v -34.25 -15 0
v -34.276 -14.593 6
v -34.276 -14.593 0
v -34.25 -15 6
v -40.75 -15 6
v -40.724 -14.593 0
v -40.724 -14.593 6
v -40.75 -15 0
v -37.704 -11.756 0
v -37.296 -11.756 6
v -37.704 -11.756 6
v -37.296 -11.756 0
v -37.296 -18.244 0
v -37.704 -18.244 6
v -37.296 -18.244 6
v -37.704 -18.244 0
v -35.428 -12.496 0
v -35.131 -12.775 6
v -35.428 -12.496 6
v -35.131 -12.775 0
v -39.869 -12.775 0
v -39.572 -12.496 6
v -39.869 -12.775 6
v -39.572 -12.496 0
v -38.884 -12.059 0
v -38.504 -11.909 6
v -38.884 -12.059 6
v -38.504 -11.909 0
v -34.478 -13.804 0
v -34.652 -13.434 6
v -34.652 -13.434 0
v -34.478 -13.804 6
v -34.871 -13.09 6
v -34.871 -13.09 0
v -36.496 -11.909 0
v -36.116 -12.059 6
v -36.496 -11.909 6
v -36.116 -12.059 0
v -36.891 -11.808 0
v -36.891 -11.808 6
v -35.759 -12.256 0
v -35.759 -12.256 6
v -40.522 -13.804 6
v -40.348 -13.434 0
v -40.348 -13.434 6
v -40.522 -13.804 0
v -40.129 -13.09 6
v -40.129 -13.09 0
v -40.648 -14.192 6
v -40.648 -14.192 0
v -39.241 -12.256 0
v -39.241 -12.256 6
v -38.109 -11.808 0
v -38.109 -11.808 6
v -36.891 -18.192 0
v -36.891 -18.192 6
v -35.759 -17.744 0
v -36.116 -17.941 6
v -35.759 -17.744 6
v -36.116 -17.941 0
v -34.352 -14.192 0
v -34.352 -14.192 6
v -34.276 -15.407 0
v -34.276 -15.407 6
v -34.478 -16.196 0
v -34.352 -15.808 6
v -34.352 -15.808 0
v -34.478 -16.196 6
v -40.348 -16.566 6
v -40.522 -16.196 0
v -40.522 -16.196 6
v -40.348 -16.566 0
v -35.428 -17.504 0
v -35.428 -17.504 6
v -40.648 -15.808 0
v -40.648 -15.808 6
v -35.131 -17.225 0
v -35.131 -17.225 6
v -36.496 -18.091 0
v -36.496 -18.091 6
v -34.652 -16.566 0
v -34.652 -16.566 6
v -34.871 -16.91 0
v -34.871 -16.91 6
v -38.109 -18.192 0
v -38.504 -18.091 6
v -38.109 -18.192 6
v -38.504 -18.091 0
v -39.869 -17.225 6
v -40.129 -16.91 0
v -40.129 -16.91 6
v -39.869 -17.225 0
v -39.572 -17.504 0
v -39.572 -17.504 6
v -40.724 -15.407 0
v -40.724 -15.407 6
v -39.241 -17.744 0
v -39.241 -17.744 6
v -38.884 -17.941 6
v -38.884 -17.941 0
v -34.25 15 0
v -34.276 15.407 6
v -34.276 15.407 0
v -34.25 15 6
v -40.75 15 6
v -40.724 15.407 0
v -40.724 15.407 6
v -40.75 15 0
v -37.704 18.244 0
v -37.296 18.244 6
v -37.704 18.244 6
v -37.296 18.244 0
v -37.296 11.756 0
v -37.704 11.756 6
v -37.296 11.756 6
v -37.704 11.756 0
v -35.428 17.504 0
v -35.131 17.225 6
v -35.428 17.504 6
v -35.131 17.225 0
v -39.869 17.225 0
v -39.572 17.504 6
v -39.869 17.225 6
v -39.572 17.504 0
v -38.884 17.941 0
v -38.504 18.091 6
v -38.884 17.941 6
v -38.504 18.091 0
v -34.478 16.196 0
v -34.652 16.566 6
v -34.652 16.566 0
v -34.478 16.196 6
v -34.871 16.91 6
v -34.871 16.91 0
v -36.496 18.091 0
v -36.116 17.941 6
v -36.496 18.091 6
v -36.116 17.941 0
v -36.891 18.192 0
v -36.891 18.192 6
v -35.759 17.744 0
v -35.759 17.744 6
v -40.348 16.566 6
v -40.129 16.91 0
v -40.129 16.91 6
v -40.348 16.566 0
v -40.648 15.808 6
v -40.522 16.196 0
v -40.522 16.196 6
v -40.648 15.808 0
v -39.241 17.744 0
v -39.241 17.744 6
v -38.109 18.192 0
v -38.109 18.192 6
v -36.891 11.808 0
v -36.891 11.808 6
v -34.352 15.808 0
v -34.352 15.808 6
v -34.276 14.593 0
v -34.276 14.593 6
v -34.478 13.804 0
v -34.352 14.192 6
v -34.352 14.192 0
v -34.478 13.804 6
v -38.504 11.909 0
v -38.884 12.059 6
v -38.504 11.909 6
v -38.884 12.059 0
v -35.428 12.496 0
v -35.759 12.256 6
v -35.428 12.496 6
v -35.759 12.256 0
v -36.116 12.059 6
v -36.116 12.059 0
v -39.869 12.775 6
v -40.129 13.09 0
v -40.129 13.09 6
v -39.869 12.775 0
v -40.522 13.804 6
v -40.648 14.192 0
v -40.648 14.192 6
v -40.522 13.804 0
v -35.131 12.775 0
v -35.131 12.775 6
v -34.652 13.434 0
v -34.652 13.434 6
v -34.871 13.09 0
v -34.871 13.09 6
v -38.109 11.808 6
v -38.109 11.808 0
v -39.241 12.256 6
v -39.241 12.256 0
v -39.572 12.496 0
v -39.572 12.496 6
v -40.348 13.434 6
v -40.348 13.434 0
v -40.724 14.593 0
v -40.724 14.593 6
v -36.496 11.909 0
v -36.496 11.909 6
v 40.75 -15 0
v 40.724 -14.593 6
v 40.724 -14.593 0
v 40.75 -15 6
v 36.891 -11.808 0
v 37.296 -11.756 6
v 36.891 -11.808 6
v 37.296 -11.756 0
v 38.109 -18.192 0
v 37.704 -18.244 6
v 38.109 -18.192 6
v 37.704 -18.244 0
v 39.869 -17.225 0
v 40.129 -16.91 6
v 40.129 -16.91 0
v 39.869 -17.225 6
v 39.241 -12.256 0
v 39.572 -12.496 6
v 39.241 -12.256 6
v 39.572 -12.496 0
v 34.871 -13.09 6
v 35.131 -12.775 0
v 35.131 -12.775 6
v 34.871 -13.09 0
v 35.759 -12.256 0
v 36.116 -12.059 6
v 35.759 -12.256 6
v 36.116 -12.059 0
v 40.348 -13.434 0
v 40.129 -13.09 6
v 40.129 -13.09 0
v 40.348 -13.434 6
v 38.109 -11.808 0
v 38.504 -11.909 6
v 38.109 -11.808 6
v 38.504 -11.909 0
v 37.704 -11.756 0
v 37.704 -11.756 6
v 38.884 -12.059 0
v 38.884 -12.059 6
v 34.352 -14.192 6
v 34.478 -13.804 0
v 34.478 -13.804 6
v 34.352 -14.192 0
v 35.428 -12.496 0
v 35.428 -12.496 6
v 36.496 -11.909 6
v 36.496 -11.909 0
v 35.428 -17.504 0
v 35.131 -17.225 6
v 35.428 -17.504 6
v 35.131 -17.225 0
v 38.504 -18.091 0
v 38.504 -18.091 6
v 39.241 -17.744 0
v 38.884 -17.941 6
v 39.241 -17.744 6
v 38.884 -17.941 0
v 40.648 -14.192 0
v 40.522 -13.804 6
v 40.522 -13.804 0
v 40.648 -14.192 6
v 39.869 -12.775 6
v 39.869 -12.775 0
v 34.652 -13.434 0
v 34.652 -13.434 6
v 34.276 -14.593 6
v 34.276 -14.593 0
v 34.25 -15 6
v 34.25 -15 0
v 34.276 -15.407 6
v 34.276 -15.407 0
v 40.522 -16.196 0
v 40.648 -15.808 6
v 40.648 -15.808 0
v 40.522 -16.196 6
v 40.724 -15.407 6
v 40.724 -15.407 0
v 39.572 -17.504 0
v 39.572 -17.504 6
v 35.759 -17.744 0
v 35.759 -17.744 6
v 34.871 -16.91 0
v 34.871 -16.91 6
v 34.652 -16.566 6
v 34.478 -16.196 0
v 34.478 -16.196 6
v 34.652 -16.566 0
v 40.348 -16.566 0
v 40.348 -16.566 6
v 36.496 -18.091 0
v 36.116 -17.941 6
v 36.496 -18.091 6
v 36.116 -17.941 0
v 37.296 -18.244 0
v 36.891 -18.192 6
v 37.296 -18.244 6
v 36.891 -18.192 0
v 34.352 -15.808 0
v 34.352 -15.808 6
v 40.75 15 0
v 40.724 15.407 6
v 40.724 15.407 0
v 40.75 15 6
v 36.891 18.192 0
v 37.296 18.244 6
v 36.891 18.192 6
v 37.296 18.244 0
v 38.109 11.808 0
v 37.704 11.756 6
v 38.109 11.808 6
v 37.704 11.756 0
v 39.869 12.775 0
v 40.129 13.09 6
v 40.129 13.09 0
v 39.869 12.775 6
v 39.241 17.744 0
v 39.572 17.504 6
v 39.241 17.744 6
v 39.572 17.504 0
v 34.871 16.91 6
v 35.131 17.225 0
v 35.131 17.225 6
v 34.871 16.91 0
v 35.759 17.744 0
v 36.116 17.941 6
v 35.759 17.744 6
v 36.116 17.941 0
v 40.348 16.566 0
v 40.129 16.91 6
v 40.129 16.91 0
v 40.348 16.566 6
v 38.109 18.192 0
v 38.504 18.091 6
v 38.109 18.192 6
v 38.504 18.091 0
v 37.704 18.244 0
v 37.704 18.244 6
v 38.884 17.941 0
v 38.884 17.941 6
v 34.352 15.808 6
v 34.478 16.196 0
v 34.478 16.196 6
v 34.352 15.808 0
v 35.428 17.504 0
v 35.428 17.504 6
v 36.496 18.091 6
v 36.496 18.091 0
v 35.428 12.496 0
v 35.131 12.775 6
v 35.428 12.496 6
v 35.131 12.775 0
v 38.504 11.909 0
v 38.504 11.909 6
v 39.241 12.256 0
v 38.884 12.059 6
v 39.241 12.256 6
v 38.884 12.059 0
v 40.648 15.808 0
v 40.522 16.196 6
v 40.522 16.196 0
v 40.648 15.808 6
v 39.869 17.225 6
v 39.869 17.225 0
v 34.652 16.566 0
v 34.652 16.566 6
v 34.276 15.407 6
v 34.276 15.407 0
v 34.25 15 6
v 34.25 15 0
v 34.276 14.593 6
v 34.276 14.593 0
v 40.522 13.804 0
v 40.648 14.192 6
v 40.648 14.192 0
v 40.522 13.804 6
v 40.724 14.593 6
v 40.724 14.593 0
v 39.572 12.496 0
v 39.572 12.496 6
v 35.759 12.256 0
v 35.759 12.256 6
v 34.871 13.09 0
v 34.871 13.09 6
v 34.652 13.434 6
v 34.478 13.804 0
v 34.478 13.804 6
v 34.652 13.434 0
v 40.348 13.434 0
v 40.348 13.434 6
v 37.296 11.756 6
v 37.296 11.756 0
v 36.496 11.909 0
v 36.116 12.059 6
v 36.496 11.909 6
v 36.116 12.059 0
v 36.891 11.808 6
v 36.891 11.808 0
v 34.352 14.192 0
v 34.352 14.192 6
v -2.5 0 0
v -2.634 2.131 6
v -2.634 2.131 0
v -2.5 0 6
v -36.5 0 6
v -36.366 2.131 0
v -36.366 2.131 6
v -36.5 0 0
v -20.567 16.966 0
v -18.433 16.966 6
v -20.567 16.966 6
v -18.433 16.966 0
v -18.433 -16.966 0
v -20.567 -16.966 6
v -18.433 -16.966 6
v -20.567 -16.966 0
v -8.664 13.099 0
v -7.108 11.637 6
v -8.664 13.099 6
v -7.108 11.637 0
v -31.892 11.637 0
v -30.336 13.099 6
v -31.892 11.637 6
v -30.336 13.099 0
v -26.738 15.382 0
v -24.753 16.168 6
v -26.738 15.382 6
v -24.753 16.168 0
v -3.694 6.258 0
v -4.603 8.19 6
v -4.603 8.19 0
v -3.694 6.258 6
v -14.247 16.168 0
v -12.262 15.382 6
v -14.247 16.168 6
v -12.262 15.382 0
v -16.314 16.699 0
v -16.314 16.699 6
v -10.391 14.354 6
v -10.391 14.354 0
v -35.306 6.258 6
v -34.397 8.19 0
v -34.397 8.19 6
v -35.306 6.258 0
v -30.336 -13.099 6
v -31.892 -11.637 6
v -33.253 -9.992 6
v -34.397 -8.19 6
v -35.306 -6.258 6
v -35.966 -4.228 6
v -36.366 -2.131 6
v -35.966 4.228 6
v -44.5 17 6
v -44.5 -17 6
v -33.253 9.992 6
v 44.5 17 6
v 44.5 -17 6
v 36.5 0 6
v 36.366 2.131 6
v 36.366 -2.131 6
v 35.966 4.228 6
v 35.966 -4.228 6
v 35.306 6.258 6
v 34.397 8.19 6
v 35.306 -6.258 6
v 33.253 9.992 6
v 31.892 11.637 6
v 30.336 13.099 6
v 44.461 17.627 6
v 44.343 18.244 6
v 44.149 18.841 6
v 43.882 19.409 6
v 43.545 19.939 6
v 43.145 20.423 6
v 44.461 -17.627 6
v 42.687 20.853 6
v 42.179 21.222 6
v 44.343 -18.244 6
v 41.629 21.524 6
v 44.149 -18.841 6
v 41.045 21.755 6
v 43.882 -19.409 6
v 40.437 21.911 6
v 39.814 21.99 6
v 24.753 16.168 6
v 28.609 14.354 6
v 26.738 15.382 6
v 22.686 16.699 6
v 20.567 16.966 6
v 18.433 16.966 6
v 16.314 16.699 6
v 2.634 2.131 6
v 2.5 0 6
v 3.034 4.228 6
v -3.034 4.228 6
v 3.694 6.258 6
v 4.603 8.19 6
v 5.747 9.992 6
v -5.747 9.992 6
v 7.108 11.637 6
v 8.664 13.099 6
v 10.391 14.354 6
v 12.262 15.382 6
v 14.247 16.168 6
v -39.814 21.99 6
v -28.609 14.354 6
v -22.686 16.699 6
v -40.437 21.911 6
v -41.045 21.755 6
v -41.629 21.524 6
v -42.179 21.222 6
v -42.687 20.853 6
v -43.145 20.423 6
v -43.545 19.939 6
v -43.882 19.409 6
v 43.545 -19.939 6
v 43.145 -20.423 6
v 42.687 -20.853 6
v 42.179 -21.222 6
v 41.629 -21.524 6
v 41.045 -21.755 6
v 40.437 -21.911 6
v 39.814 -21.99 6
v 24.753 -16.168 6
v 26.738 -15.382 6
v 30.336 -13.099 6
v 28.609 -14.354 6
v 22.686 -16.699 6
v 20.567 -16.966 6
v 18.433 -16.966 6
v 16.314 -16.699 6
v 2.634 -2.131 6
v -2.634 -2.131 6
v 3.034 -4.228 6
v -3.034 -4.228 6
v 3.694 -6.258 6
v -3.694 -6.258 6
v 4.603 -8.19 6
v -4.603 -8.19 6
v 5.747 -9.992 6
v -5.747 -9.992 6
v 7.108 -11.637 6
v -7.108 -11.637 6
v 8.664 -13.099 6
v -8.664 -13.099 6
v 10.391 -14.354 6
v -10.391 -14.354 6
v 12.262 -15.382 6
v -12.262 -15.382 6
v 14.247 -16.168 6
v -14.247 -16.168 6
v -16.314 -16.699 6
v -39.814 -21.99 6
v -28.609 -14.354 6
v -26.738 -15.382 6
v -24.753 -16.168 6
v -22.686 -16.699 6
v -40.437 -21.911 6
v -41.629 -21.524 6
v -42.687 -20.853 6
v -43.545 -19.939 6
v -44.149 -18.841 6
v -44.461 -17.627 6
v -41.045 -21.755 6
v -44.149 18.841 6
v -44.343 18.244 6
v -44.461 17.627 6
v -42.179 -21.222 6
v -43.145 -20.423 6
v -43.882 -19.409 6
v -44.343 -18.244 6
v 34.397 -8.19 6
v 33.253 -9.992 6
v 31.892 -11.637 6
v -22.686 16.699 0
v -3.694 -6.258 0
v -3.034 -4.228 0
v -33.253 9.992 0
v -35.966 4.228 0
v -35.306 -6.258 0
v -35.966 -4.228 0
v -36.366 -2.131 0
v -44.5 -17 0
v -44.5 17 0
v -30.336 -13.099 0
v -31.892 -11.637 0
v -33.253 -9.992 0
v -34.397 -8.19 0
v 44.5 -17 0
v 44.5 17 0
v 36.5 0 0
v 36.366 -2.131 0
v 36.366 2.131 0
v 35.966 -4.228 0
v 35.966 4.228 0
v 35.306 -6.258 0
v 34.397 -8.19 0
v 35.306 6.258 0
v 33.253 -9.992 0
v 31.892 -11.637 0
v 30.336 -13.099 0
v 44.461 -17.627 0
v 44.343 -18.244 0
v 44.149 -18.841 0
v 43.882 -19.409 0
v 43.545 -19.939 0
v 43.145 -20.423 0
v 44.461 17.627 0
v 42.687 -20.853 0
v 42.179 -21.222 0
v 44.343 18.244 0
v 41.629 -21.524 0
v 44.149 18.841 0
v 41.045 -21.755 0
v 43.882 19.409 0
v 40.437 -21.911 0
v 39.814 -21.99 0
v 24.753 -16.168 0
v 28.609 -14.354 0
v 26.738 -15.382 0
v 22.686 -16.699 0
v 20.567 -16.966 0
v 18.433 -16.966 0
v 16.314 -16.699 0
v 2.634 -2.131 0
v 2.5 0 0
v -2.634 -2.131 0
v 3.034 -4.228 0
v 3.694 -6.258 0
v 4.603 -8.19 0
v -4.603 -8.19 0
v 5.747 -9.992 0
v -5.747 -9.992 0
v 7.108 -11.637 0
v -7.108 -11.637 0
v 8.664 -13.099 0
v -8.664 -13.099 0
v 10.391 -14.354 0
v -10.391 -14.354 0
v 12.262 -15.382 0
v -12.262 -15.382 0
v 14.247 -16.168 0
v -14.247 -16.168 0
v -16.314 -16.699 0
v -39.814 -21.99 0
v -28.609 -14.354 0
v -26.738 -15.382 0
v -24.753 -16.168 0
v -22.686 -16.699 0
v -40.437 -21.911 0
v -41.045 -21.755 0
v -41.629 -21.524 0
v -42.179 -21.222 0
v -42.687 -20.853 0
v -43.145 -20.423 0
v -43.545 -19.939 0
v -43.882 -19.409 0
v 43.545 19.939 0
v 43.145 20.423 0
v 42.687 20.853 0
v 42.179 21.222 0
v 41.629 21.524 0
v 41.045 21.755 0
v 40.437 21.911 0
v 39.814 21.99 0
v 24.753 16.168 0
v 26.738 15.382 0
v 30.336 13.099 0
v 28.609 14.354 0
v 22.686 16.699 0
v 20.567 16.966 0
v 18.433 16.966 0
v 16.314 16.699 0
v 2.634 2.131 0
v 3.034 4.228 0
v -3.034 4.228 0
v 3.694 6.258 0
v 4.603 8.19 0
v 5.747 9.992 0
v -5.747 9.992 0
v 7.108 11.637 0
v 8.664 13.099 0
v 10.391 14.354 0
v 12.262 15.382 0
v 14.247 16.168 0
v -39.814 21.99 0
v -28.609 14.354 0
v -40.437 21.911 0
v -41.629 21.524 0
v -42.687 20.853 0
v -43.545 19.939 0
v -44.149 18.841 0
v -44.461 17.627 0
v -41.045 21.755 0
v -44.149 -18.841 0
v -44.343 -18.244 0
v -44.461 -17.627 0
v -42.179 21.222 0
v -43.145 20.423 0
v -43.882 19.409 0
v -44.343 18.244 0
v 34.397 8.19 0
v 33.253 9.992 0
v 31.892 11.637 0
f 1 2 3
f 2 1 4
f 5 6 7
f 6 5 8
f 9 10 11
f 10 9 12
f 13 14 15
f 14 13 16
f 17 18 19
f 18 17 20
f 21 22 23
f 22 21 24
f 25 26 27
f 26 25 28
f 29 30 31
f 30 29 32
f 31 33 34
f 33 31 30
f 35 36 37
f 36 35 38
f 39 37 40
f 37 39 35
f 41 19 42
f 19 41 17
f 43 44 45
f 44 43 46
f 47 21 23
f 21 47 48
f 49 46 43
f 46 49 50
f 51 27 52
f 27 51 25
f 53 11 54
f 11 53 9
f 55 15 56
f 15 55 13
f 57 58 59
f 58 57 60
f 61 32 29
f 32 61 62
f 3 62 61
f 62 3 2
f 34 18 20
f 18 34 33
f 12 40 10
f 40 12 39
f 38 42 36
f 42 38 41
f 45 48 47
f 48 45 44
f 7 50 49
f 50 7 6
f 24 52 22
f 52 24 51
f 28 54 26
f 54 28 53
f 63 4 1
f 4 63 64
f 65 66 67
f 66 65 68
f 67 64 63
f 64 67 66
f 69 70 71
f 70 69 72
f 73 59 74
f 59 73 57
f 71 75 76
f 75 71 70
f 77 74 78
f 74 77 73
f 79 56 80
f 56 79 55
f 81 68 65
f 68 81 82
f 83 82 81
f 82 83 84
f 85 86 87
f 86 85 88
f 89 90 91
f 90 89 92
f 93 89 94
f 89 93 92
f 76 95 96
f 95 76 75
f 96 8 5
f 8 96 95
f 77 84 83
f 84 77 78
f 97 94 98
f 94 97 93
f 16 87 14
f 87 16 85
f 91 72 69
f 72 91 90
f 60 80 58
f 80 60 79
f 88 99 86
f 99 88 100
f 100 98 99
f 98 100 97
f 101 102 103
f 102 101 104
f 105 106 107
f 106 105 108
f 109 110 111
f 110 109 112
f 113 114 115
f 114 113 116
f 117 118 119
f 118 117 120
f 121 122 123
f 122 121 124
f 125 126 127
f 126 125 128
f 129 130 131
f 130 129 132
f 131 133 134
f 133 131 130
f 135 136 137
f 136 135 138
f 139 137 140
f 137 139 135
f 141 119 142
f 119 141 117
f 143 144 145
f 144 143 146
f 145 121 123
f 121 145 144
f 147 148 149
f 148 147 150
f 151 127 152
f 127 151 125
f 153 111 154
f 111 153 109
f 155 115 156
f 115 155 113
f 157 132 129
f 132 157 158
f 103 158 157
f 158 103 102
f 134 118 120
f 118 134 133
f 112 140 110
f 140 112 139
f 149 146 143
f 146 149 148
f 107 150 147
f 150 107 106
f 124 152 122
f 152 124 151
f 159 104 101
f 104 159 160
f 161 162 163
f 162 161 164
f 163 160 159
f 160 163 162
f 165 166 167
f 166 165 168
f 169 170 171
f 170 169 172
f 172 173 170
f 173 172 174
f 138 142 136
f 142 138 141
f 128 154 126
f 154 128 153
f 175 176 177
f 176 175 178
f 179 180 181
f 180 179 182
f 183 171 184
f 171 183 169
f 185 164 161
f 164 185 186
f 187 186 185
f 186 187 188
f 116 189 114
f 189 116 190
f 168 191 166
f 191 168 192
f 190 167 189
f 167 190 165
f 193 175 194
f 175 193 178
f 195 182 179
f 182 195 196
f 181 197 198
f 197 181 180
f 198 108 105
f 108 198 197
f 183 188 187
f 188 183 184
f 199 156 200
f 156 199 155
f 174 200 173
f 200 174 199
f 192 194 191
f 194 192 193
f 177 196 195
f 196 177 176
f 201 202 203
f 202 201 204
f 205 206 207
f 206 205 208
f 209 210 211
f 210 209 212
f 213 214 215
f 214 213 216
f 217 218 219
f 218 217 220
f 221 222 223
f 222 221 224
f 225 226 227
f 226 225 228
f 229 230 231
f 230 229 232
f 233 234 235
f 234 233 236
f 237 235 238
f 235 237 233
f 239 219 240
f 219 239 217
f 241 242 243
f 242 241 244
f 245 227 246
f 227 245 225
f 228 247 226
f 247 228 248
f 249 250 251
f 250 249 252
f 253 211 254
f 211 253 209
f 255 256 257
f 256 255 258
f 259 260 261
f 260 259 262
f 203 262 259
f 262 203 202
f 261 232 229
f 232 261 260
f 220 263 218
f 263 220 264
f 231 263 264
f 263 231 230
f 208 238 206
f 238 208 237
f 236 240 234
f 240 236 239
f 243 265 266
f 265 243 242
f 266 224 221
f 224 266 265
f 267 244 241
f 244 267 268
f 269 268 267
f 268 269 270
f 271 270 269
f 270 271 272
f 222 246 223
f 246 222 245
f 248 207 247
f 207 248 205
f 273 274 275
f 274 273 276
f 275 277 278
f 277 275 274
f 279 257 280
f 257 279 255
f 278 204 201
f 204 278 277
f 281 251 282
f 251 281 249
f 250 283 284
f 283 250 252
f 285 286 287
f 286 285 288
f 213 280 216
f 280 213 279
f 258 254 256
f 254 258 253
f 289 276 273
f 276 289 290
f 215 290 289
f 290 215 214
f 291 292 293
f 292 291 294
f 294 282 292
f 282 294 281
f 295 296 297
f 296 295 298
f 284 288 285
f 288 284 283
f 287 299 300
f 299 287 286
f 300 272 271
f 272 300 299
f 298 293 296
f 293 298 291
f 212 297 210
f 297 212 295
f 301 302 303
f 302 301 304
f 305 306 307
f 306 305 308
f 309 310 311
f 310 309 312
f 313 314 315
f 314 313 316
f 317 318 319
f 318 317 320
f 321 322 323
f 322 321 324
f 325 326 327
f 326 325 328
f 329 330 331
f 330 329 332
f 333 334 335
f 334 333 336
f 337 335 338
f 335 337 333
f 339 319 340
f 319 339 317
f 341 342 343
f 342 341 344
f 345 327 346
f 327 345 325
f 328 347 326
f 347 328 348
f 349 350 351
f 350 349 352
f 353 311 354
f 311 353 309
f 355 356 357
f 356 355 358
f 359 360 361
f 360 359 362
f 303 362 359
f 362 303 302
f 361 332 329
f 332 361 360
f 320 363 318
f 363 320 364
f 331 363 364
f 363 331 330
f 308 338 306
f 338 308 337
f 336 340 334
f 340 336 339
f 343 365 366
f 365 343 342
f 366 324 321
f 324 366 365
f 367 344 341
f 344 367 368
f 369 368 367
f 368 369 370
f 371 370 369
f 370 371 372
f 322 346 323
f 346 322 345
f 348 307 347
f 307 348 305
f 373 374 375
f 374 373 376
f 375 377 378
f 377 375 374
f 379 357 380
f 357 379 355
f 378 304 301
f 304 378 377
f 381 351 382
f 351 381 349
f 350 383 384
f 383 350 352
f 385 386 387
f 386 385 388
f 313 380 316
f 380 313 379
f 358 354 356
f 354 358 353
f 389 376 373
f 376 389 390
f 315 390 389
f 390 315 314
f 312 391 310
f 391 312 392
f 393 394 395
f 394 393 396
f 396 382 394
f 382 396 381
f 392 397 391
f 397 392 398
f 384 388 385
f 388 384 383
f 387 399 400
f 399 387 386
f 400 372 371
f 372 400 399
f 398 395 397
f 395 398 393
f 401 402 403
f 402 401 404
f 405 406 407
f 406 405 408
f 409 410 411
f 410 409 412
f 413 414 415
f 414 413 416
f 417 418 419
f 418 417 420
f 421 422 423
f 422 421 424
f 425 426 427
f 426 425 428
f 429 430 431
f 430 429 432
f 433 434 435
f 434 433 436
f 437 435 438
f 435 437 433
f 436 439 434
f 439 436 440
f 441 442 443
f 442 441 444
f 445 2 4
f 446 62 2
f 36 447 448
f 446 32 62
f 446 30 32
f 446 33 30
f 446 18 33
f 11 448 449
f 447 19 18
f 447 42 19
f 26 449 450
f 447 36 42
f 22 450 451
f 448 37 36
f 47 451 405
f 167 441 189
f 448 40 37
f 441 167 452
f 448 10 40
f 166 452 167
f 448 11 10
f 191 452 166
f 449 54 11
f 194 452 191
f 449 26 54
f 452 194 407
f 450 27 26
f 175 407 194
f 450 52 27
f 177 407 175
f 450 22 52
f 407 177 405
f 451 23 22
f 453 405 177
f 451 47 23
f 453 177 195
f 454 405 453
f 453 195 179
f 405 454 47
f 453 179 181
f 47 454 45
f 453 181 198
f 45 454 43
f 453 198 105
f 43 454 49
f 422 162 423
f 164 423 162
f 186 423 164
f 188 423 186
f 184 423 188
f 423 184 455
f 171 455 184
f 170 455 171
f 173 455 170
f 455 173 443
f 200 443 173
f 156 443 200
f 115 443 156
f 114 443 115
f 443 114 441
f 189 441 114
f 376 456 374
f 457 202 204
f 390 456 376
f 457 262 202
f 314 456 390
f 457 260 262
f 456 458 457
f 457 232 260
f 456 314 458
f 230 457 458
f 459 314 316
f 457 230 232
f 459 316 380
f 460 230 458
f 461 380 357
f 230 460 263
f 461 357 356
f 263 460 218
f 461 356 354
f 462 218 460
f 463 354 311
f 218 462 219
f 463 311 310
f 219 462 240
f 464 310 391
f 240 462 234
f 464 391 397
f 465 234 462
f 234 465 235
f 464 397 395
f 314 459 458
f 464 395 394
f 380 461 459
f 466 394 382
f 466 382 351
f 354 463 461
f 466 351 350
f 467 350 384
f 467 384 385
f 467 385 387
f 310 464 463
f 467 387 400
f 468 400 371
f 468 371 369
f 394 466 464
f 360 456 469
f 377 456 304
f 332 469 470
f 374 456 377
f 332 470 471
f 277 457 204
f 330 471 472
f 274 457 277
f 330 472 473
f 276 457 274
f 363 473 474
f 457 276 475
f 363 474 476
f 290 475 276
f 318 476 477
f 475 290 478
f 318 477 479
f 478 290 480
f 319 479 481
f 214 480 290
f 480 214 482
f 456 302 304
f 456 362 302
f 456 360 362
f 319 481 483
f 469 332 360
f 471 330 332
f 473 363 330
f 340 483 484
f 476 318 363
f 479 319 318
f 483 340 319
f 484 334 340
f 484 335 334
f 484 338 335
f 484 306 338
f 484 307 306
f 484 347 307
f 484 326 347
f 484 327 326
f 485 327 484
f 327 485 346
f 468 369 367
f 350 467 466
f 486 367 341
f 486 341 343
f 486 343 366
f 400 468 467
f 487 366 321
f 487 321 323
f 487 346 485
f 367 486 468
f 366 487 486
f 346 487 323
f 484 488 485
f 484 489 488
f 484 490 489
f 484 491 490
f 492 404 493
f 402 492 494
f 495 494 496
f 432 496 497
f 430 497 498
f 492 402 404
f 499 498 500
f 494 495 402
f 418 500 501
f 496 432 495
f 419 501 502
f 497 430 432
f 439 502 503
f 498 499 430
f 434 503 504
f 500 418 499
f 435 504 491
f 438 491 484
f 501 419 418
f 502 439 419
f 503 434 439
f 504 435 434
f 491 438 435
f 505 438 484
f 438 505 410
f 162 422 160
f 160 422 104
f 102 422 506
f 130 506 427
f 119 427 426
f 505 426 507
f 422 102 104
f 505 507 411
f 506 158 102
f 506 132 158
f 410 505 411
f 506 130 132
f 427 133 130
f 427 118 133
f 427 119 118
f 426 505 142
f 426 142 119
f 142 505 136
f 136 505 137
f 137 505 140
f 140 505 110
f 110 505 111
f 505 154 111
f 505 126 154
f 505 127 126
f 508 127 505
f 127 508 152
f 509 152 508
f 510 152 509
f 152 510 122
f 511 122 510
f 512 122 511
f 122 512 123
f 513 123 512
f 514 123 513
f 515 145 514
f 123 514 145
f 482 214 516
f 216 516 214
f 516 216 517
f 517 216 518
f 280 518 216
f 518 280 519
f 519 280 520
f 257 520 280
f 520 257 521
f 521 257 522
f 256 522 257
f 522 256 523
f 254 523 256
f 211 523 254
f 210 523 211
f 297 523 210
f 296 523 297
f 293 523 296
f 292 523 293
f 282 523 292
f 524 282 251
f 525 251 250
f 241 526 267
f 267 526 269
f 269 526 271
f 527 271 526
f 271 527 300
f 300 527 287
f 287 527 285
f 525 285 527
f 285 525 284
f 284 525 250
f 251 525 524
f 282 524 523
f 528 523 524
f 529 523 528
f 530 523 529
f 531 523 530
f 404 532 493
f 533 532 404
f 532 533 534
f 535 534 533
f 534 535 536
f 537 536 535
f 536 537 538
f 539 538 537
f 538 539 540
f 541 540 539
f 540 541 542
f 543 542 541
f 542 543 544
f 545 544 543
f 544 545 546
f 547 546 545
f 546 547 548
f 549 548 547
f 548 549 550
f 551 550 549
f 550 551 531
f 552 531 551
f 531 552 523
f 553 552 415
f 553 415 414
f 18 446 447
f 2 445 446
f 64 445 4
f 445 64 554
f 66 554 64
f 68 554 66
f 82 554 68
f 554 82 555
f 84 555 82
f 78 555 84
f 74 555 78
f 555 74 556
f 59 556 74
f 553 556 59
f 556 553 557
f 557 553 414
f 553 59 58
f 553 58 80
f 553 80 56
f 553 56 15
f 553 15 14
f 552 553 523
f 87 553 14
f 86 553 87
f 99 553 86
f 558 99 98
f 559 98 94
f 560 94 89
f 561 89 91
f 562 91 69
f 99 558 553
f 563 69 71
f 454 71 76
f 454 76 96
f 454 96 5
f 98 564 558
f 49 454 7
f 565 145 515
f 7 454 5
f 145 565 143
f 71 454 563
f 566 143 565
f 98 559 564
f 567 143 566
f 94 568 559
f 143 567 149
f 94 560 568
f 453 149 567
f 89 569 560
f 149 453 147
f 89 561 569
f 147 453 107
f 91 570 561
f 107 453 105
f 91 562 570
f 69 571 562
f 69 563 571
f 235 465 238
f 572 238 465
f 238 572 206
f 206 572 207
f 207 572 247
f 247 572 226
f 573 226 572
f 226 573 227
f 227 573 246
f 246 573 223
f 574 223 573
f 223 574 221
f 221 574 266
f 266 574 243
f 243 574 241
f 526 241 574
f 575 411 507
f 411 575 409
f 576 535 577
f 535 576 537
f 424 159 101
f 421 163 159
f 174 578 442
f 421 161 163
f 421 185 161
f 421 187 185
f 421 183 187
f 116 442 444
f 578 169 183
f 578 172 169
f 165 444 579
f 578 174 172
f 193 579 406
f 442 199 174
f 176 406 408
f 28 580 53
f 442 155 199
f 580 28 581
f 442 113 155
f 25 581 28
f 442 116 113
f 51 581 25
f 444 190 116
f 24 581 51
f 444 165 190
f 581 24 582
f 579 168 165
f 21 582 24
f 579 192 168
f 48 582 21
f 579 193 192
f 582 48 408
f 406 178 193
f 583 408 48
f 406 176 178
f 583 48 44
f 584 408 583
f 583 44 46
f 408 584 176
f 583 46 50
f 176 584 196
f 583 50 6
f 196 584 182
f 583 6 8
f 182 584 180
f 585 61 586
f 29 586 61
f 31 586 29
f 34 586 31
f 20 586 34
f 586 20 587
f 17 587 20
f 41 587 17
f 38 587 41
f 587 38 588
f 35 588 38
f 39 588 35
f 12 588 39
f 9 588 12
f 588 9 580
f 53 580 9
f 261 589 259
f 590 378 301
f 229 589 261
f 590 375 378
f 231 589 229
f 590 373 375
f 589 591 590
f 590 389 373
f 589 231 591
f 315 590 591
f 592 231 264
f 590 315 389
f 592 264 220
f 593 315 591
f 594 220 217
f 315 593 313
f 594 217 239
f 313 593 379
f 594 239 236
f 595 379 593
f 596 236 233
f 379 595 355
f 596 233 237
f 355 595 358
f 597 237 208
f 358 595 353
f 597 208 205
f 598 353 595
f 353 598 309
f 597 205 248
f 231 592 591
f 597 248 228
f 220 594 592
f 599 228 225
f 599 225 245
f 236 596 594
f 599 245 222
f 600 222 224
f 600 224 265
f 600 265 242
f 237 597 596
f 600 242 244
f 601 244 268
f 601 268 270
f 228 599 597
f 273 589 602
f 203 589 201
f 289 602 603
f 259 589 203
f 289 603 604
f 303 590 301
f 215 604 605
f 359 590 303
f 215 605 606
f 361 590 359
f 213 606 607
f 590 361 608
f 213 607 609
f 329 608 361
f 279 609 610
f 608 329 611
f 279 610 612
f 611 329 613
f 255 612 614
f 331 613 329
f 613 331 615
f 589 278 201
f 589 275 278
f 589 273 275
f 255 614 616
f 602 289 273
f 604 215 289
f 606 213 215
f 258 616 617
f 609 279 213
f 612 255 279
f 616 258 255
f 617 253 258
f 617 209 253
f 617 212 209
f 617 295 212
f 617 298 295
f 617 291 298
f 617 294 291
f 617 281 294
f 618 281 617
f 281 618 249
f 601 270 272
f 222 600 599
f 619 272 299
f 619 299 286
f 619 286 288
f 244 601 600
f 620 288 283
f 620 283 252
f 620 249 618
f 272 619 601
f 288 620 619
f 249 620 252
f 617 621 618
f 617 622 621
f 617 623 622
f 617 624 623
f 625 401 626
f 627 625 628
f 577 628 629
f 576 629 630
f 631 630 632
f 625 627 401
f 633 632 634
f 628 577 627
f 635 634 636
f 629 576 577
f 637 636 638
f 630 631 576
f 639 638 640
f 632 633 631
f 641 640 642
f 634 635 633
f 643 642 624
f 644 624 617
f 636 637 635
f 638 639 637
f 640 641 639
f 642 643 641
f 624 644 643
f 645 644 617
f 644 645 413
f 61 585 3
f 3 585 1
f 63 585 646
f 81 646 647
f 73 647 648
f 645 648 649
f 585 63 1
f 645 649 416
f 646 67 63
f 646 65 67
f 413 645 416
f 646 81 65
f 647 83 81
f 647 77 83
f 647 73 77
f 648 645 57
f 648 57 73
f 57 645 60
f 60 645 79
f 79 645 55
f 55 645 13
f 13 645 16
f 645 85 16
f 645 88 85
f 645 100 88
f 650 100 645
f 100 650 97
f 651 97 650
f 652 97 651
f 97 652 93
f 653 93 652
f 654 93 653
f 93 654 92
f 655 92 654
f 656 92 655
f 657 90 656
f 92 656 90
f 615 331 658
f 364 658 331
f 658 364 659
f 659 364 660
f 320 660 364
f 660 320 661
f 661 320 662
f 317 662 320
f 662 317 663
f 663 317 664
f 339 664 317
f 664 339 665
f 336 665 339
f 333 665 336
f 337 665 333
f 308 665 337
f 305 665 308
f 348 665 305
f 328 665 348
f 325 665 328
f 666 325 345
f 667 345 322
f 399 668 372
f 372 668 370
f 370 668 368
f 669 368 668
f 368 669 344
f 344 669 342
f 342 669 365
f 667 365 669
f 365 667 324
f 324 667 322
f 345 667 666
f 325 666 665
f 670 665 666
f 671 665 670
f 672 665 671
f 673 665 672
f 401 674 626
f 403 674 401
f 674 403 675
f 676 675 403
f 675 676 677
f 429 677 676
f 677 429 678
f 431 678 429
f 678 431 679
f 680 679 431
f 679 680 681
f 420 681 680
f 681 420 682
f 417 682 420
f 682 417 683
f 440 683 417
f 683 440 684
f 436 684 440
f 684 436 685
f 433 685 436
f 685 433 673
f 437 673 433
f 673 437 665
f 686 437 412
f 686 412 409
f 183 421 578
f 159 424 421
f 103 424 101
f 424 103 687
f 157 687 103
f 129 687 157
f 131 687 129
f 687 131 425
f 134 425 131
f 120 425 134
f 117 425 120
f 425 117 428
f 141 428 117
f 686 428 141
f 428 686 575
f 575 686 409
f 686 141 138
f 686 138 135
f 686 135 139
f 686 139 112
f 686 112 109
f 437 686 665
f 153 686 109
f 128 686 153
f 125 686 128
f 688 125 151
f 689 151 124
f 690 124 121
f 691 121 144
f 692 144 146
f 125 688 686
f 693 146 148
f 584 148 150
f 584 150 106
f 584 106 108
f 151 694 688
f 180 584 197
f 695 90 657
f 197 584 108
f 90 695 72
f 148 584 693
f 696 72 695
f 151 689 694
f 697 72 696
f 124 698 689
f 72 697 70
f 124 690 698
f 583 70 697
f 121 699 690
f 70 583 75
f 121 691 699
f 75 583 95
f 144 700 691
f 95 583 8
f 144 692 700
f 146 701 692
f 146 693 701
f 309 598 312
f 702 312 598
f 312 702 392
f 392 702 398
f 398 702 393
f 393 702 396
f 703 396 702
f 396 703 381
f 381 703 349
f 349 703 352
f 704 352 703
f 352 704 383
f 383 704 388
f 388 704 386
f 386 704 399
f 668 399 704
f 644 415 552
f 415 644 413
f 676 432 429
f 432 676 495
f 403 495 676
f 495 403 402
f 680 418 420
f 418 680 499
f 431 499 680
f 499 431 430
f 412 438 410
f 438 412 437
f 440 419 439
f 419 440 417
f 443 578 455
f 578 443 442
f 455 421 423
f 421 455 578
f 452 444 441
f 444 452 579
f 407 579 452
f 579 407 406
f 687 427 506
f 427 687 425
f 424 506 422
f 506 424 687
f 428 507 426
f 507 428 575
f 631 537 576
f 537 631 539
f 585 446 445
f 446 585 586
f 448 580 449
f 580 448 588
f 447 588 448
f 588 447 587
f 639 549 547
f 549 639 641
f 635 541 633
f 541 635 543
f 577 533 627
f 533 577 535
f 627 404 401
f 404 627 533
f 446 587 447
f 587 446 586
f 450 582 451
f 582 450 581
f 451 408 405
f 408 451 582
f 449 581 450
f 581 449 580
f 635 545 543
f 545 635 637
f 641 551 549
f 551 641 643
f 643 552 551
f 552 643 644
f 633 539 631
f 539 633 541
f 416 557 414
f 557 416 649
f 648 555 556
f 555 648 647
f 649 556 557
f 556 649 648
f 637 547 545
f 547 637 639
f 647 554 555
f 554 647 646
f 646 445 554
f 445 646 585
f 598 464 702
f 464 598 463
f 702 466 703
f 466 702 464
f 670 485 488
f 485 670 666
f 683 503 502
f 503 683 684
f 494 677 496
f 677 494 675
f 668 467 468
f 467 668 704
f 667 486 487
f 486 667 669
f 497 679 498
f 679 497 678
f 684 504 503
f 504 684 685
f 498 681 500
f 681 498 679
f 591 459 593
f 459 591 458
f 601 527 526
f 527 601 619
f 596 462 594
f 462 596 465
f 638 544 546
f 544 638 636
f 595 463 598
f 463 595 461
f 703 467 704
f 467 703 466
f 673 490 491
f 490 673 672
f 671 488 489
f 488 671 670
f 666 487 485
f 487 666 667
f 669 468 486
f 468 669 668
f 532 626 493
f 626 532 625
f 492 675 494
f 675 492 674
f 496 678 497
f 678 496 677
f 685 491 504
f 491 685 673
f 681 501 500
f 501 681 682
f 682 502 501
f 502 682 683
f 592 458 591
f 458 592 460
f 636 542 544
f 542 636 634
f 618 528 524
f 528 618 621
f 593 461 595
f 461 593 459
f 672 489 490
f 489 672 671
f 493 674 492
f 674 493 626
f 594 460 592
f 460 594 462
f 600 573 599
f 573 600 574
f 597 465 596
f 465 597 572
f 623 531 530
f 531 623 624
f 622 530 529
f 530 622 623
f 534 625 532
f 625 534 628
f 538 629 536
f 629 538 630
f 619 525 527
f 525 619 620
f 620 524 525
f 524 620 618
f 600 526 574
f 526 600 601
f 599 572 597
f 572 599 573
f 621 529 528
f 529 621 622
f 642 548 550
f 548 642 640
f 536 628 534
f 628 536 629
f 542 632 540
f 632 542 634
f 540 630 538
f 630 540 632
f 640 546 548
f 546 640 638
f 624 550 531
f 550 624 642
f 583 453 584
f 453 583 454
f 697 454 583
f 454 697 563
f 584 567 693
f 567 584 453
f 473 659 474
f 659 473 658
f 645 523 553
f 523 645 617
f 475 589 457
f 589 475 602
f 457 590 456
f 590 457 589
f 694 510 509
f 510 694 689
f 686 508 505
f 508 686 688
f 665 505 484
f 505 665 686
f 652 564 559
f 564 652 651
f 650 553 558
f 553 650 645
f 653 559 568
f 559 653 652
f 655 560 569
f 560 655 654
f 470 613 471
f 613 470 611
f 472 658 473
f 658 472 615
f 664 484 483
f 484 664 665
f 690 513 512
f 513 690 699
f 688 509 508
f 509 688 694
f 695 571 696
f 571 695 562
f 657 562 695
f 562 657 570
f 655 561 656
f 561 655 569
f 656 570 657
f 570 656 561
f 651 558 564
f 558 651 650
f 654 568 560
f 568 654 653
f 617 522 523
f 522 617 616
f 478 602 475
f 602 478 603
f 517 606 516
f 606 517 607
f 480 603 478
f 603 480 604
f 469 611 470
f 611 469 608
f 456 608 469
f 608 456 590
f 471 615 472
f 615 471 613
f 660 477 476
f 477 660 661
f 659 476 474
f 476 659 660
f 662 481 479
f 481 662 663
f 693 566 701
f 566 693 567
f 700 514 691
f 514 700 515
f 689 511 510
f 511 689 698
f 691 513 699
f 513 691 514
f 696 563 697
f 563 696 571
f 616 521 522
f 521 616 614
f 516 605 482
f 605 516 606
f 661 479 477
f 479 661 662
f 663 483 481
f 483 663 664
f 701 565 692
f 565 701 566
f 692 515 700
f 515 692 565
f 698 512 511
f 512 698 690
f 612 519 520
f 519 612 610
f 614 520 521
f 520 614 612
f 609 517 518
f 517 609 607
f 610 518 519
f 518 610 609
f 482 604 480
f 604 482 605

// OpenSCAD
$fn = 50;


difference() {
	union() {
		hull() {
			translate(v = [-39.5000000000, 17.0000000000, 0]) {
				cylinder(h = 6, r = 5);
			}
			translate(v = [39.5000000000, 17.0000000000, 0]) {
				cylinder(h = 6, r = 5);
			}
			translate(v = [-39.5000000000, -17.0000000000, 0]) {
				cylinder(h = 6, r = 5);
			}
			translate(v = [39.5000000000, -17.0000000000, 0]) {
				cylinder(h = 6, r = 5);
			}
		}
	}
	union() {
		#translate(v = [-37.5000000000, -15.0000000000, -100.0000000000]) {
			cylinder(h = 200, r = 3.2500000000);
		}
		#translate(v = [-37.5000000000, 15.0000000000, -100.0000000000]) {
			cylinder(h = 200, r = 3.2500000000);
		}
		#translate(v = [37.5000000000, -15.0000000000, -100.0000000000]) {
			cylinder(h = 200, r = 3.2500000000);
		}
		#translate(v = [37.5000000000, 15.0000000000, -100.0000000000]) {
			cylinder(h = 200, r = 3.2500000000);
		}
		#translate(v = [-19.5000000000, 0, 0]) {
			cylinder(h = 6, r = 17.0000000000);
		}
		#translate(v = [19.5000000000, 0, 0]) {
			cylinder(h = 6, r = 17.0000000000);
		}
	}
}
